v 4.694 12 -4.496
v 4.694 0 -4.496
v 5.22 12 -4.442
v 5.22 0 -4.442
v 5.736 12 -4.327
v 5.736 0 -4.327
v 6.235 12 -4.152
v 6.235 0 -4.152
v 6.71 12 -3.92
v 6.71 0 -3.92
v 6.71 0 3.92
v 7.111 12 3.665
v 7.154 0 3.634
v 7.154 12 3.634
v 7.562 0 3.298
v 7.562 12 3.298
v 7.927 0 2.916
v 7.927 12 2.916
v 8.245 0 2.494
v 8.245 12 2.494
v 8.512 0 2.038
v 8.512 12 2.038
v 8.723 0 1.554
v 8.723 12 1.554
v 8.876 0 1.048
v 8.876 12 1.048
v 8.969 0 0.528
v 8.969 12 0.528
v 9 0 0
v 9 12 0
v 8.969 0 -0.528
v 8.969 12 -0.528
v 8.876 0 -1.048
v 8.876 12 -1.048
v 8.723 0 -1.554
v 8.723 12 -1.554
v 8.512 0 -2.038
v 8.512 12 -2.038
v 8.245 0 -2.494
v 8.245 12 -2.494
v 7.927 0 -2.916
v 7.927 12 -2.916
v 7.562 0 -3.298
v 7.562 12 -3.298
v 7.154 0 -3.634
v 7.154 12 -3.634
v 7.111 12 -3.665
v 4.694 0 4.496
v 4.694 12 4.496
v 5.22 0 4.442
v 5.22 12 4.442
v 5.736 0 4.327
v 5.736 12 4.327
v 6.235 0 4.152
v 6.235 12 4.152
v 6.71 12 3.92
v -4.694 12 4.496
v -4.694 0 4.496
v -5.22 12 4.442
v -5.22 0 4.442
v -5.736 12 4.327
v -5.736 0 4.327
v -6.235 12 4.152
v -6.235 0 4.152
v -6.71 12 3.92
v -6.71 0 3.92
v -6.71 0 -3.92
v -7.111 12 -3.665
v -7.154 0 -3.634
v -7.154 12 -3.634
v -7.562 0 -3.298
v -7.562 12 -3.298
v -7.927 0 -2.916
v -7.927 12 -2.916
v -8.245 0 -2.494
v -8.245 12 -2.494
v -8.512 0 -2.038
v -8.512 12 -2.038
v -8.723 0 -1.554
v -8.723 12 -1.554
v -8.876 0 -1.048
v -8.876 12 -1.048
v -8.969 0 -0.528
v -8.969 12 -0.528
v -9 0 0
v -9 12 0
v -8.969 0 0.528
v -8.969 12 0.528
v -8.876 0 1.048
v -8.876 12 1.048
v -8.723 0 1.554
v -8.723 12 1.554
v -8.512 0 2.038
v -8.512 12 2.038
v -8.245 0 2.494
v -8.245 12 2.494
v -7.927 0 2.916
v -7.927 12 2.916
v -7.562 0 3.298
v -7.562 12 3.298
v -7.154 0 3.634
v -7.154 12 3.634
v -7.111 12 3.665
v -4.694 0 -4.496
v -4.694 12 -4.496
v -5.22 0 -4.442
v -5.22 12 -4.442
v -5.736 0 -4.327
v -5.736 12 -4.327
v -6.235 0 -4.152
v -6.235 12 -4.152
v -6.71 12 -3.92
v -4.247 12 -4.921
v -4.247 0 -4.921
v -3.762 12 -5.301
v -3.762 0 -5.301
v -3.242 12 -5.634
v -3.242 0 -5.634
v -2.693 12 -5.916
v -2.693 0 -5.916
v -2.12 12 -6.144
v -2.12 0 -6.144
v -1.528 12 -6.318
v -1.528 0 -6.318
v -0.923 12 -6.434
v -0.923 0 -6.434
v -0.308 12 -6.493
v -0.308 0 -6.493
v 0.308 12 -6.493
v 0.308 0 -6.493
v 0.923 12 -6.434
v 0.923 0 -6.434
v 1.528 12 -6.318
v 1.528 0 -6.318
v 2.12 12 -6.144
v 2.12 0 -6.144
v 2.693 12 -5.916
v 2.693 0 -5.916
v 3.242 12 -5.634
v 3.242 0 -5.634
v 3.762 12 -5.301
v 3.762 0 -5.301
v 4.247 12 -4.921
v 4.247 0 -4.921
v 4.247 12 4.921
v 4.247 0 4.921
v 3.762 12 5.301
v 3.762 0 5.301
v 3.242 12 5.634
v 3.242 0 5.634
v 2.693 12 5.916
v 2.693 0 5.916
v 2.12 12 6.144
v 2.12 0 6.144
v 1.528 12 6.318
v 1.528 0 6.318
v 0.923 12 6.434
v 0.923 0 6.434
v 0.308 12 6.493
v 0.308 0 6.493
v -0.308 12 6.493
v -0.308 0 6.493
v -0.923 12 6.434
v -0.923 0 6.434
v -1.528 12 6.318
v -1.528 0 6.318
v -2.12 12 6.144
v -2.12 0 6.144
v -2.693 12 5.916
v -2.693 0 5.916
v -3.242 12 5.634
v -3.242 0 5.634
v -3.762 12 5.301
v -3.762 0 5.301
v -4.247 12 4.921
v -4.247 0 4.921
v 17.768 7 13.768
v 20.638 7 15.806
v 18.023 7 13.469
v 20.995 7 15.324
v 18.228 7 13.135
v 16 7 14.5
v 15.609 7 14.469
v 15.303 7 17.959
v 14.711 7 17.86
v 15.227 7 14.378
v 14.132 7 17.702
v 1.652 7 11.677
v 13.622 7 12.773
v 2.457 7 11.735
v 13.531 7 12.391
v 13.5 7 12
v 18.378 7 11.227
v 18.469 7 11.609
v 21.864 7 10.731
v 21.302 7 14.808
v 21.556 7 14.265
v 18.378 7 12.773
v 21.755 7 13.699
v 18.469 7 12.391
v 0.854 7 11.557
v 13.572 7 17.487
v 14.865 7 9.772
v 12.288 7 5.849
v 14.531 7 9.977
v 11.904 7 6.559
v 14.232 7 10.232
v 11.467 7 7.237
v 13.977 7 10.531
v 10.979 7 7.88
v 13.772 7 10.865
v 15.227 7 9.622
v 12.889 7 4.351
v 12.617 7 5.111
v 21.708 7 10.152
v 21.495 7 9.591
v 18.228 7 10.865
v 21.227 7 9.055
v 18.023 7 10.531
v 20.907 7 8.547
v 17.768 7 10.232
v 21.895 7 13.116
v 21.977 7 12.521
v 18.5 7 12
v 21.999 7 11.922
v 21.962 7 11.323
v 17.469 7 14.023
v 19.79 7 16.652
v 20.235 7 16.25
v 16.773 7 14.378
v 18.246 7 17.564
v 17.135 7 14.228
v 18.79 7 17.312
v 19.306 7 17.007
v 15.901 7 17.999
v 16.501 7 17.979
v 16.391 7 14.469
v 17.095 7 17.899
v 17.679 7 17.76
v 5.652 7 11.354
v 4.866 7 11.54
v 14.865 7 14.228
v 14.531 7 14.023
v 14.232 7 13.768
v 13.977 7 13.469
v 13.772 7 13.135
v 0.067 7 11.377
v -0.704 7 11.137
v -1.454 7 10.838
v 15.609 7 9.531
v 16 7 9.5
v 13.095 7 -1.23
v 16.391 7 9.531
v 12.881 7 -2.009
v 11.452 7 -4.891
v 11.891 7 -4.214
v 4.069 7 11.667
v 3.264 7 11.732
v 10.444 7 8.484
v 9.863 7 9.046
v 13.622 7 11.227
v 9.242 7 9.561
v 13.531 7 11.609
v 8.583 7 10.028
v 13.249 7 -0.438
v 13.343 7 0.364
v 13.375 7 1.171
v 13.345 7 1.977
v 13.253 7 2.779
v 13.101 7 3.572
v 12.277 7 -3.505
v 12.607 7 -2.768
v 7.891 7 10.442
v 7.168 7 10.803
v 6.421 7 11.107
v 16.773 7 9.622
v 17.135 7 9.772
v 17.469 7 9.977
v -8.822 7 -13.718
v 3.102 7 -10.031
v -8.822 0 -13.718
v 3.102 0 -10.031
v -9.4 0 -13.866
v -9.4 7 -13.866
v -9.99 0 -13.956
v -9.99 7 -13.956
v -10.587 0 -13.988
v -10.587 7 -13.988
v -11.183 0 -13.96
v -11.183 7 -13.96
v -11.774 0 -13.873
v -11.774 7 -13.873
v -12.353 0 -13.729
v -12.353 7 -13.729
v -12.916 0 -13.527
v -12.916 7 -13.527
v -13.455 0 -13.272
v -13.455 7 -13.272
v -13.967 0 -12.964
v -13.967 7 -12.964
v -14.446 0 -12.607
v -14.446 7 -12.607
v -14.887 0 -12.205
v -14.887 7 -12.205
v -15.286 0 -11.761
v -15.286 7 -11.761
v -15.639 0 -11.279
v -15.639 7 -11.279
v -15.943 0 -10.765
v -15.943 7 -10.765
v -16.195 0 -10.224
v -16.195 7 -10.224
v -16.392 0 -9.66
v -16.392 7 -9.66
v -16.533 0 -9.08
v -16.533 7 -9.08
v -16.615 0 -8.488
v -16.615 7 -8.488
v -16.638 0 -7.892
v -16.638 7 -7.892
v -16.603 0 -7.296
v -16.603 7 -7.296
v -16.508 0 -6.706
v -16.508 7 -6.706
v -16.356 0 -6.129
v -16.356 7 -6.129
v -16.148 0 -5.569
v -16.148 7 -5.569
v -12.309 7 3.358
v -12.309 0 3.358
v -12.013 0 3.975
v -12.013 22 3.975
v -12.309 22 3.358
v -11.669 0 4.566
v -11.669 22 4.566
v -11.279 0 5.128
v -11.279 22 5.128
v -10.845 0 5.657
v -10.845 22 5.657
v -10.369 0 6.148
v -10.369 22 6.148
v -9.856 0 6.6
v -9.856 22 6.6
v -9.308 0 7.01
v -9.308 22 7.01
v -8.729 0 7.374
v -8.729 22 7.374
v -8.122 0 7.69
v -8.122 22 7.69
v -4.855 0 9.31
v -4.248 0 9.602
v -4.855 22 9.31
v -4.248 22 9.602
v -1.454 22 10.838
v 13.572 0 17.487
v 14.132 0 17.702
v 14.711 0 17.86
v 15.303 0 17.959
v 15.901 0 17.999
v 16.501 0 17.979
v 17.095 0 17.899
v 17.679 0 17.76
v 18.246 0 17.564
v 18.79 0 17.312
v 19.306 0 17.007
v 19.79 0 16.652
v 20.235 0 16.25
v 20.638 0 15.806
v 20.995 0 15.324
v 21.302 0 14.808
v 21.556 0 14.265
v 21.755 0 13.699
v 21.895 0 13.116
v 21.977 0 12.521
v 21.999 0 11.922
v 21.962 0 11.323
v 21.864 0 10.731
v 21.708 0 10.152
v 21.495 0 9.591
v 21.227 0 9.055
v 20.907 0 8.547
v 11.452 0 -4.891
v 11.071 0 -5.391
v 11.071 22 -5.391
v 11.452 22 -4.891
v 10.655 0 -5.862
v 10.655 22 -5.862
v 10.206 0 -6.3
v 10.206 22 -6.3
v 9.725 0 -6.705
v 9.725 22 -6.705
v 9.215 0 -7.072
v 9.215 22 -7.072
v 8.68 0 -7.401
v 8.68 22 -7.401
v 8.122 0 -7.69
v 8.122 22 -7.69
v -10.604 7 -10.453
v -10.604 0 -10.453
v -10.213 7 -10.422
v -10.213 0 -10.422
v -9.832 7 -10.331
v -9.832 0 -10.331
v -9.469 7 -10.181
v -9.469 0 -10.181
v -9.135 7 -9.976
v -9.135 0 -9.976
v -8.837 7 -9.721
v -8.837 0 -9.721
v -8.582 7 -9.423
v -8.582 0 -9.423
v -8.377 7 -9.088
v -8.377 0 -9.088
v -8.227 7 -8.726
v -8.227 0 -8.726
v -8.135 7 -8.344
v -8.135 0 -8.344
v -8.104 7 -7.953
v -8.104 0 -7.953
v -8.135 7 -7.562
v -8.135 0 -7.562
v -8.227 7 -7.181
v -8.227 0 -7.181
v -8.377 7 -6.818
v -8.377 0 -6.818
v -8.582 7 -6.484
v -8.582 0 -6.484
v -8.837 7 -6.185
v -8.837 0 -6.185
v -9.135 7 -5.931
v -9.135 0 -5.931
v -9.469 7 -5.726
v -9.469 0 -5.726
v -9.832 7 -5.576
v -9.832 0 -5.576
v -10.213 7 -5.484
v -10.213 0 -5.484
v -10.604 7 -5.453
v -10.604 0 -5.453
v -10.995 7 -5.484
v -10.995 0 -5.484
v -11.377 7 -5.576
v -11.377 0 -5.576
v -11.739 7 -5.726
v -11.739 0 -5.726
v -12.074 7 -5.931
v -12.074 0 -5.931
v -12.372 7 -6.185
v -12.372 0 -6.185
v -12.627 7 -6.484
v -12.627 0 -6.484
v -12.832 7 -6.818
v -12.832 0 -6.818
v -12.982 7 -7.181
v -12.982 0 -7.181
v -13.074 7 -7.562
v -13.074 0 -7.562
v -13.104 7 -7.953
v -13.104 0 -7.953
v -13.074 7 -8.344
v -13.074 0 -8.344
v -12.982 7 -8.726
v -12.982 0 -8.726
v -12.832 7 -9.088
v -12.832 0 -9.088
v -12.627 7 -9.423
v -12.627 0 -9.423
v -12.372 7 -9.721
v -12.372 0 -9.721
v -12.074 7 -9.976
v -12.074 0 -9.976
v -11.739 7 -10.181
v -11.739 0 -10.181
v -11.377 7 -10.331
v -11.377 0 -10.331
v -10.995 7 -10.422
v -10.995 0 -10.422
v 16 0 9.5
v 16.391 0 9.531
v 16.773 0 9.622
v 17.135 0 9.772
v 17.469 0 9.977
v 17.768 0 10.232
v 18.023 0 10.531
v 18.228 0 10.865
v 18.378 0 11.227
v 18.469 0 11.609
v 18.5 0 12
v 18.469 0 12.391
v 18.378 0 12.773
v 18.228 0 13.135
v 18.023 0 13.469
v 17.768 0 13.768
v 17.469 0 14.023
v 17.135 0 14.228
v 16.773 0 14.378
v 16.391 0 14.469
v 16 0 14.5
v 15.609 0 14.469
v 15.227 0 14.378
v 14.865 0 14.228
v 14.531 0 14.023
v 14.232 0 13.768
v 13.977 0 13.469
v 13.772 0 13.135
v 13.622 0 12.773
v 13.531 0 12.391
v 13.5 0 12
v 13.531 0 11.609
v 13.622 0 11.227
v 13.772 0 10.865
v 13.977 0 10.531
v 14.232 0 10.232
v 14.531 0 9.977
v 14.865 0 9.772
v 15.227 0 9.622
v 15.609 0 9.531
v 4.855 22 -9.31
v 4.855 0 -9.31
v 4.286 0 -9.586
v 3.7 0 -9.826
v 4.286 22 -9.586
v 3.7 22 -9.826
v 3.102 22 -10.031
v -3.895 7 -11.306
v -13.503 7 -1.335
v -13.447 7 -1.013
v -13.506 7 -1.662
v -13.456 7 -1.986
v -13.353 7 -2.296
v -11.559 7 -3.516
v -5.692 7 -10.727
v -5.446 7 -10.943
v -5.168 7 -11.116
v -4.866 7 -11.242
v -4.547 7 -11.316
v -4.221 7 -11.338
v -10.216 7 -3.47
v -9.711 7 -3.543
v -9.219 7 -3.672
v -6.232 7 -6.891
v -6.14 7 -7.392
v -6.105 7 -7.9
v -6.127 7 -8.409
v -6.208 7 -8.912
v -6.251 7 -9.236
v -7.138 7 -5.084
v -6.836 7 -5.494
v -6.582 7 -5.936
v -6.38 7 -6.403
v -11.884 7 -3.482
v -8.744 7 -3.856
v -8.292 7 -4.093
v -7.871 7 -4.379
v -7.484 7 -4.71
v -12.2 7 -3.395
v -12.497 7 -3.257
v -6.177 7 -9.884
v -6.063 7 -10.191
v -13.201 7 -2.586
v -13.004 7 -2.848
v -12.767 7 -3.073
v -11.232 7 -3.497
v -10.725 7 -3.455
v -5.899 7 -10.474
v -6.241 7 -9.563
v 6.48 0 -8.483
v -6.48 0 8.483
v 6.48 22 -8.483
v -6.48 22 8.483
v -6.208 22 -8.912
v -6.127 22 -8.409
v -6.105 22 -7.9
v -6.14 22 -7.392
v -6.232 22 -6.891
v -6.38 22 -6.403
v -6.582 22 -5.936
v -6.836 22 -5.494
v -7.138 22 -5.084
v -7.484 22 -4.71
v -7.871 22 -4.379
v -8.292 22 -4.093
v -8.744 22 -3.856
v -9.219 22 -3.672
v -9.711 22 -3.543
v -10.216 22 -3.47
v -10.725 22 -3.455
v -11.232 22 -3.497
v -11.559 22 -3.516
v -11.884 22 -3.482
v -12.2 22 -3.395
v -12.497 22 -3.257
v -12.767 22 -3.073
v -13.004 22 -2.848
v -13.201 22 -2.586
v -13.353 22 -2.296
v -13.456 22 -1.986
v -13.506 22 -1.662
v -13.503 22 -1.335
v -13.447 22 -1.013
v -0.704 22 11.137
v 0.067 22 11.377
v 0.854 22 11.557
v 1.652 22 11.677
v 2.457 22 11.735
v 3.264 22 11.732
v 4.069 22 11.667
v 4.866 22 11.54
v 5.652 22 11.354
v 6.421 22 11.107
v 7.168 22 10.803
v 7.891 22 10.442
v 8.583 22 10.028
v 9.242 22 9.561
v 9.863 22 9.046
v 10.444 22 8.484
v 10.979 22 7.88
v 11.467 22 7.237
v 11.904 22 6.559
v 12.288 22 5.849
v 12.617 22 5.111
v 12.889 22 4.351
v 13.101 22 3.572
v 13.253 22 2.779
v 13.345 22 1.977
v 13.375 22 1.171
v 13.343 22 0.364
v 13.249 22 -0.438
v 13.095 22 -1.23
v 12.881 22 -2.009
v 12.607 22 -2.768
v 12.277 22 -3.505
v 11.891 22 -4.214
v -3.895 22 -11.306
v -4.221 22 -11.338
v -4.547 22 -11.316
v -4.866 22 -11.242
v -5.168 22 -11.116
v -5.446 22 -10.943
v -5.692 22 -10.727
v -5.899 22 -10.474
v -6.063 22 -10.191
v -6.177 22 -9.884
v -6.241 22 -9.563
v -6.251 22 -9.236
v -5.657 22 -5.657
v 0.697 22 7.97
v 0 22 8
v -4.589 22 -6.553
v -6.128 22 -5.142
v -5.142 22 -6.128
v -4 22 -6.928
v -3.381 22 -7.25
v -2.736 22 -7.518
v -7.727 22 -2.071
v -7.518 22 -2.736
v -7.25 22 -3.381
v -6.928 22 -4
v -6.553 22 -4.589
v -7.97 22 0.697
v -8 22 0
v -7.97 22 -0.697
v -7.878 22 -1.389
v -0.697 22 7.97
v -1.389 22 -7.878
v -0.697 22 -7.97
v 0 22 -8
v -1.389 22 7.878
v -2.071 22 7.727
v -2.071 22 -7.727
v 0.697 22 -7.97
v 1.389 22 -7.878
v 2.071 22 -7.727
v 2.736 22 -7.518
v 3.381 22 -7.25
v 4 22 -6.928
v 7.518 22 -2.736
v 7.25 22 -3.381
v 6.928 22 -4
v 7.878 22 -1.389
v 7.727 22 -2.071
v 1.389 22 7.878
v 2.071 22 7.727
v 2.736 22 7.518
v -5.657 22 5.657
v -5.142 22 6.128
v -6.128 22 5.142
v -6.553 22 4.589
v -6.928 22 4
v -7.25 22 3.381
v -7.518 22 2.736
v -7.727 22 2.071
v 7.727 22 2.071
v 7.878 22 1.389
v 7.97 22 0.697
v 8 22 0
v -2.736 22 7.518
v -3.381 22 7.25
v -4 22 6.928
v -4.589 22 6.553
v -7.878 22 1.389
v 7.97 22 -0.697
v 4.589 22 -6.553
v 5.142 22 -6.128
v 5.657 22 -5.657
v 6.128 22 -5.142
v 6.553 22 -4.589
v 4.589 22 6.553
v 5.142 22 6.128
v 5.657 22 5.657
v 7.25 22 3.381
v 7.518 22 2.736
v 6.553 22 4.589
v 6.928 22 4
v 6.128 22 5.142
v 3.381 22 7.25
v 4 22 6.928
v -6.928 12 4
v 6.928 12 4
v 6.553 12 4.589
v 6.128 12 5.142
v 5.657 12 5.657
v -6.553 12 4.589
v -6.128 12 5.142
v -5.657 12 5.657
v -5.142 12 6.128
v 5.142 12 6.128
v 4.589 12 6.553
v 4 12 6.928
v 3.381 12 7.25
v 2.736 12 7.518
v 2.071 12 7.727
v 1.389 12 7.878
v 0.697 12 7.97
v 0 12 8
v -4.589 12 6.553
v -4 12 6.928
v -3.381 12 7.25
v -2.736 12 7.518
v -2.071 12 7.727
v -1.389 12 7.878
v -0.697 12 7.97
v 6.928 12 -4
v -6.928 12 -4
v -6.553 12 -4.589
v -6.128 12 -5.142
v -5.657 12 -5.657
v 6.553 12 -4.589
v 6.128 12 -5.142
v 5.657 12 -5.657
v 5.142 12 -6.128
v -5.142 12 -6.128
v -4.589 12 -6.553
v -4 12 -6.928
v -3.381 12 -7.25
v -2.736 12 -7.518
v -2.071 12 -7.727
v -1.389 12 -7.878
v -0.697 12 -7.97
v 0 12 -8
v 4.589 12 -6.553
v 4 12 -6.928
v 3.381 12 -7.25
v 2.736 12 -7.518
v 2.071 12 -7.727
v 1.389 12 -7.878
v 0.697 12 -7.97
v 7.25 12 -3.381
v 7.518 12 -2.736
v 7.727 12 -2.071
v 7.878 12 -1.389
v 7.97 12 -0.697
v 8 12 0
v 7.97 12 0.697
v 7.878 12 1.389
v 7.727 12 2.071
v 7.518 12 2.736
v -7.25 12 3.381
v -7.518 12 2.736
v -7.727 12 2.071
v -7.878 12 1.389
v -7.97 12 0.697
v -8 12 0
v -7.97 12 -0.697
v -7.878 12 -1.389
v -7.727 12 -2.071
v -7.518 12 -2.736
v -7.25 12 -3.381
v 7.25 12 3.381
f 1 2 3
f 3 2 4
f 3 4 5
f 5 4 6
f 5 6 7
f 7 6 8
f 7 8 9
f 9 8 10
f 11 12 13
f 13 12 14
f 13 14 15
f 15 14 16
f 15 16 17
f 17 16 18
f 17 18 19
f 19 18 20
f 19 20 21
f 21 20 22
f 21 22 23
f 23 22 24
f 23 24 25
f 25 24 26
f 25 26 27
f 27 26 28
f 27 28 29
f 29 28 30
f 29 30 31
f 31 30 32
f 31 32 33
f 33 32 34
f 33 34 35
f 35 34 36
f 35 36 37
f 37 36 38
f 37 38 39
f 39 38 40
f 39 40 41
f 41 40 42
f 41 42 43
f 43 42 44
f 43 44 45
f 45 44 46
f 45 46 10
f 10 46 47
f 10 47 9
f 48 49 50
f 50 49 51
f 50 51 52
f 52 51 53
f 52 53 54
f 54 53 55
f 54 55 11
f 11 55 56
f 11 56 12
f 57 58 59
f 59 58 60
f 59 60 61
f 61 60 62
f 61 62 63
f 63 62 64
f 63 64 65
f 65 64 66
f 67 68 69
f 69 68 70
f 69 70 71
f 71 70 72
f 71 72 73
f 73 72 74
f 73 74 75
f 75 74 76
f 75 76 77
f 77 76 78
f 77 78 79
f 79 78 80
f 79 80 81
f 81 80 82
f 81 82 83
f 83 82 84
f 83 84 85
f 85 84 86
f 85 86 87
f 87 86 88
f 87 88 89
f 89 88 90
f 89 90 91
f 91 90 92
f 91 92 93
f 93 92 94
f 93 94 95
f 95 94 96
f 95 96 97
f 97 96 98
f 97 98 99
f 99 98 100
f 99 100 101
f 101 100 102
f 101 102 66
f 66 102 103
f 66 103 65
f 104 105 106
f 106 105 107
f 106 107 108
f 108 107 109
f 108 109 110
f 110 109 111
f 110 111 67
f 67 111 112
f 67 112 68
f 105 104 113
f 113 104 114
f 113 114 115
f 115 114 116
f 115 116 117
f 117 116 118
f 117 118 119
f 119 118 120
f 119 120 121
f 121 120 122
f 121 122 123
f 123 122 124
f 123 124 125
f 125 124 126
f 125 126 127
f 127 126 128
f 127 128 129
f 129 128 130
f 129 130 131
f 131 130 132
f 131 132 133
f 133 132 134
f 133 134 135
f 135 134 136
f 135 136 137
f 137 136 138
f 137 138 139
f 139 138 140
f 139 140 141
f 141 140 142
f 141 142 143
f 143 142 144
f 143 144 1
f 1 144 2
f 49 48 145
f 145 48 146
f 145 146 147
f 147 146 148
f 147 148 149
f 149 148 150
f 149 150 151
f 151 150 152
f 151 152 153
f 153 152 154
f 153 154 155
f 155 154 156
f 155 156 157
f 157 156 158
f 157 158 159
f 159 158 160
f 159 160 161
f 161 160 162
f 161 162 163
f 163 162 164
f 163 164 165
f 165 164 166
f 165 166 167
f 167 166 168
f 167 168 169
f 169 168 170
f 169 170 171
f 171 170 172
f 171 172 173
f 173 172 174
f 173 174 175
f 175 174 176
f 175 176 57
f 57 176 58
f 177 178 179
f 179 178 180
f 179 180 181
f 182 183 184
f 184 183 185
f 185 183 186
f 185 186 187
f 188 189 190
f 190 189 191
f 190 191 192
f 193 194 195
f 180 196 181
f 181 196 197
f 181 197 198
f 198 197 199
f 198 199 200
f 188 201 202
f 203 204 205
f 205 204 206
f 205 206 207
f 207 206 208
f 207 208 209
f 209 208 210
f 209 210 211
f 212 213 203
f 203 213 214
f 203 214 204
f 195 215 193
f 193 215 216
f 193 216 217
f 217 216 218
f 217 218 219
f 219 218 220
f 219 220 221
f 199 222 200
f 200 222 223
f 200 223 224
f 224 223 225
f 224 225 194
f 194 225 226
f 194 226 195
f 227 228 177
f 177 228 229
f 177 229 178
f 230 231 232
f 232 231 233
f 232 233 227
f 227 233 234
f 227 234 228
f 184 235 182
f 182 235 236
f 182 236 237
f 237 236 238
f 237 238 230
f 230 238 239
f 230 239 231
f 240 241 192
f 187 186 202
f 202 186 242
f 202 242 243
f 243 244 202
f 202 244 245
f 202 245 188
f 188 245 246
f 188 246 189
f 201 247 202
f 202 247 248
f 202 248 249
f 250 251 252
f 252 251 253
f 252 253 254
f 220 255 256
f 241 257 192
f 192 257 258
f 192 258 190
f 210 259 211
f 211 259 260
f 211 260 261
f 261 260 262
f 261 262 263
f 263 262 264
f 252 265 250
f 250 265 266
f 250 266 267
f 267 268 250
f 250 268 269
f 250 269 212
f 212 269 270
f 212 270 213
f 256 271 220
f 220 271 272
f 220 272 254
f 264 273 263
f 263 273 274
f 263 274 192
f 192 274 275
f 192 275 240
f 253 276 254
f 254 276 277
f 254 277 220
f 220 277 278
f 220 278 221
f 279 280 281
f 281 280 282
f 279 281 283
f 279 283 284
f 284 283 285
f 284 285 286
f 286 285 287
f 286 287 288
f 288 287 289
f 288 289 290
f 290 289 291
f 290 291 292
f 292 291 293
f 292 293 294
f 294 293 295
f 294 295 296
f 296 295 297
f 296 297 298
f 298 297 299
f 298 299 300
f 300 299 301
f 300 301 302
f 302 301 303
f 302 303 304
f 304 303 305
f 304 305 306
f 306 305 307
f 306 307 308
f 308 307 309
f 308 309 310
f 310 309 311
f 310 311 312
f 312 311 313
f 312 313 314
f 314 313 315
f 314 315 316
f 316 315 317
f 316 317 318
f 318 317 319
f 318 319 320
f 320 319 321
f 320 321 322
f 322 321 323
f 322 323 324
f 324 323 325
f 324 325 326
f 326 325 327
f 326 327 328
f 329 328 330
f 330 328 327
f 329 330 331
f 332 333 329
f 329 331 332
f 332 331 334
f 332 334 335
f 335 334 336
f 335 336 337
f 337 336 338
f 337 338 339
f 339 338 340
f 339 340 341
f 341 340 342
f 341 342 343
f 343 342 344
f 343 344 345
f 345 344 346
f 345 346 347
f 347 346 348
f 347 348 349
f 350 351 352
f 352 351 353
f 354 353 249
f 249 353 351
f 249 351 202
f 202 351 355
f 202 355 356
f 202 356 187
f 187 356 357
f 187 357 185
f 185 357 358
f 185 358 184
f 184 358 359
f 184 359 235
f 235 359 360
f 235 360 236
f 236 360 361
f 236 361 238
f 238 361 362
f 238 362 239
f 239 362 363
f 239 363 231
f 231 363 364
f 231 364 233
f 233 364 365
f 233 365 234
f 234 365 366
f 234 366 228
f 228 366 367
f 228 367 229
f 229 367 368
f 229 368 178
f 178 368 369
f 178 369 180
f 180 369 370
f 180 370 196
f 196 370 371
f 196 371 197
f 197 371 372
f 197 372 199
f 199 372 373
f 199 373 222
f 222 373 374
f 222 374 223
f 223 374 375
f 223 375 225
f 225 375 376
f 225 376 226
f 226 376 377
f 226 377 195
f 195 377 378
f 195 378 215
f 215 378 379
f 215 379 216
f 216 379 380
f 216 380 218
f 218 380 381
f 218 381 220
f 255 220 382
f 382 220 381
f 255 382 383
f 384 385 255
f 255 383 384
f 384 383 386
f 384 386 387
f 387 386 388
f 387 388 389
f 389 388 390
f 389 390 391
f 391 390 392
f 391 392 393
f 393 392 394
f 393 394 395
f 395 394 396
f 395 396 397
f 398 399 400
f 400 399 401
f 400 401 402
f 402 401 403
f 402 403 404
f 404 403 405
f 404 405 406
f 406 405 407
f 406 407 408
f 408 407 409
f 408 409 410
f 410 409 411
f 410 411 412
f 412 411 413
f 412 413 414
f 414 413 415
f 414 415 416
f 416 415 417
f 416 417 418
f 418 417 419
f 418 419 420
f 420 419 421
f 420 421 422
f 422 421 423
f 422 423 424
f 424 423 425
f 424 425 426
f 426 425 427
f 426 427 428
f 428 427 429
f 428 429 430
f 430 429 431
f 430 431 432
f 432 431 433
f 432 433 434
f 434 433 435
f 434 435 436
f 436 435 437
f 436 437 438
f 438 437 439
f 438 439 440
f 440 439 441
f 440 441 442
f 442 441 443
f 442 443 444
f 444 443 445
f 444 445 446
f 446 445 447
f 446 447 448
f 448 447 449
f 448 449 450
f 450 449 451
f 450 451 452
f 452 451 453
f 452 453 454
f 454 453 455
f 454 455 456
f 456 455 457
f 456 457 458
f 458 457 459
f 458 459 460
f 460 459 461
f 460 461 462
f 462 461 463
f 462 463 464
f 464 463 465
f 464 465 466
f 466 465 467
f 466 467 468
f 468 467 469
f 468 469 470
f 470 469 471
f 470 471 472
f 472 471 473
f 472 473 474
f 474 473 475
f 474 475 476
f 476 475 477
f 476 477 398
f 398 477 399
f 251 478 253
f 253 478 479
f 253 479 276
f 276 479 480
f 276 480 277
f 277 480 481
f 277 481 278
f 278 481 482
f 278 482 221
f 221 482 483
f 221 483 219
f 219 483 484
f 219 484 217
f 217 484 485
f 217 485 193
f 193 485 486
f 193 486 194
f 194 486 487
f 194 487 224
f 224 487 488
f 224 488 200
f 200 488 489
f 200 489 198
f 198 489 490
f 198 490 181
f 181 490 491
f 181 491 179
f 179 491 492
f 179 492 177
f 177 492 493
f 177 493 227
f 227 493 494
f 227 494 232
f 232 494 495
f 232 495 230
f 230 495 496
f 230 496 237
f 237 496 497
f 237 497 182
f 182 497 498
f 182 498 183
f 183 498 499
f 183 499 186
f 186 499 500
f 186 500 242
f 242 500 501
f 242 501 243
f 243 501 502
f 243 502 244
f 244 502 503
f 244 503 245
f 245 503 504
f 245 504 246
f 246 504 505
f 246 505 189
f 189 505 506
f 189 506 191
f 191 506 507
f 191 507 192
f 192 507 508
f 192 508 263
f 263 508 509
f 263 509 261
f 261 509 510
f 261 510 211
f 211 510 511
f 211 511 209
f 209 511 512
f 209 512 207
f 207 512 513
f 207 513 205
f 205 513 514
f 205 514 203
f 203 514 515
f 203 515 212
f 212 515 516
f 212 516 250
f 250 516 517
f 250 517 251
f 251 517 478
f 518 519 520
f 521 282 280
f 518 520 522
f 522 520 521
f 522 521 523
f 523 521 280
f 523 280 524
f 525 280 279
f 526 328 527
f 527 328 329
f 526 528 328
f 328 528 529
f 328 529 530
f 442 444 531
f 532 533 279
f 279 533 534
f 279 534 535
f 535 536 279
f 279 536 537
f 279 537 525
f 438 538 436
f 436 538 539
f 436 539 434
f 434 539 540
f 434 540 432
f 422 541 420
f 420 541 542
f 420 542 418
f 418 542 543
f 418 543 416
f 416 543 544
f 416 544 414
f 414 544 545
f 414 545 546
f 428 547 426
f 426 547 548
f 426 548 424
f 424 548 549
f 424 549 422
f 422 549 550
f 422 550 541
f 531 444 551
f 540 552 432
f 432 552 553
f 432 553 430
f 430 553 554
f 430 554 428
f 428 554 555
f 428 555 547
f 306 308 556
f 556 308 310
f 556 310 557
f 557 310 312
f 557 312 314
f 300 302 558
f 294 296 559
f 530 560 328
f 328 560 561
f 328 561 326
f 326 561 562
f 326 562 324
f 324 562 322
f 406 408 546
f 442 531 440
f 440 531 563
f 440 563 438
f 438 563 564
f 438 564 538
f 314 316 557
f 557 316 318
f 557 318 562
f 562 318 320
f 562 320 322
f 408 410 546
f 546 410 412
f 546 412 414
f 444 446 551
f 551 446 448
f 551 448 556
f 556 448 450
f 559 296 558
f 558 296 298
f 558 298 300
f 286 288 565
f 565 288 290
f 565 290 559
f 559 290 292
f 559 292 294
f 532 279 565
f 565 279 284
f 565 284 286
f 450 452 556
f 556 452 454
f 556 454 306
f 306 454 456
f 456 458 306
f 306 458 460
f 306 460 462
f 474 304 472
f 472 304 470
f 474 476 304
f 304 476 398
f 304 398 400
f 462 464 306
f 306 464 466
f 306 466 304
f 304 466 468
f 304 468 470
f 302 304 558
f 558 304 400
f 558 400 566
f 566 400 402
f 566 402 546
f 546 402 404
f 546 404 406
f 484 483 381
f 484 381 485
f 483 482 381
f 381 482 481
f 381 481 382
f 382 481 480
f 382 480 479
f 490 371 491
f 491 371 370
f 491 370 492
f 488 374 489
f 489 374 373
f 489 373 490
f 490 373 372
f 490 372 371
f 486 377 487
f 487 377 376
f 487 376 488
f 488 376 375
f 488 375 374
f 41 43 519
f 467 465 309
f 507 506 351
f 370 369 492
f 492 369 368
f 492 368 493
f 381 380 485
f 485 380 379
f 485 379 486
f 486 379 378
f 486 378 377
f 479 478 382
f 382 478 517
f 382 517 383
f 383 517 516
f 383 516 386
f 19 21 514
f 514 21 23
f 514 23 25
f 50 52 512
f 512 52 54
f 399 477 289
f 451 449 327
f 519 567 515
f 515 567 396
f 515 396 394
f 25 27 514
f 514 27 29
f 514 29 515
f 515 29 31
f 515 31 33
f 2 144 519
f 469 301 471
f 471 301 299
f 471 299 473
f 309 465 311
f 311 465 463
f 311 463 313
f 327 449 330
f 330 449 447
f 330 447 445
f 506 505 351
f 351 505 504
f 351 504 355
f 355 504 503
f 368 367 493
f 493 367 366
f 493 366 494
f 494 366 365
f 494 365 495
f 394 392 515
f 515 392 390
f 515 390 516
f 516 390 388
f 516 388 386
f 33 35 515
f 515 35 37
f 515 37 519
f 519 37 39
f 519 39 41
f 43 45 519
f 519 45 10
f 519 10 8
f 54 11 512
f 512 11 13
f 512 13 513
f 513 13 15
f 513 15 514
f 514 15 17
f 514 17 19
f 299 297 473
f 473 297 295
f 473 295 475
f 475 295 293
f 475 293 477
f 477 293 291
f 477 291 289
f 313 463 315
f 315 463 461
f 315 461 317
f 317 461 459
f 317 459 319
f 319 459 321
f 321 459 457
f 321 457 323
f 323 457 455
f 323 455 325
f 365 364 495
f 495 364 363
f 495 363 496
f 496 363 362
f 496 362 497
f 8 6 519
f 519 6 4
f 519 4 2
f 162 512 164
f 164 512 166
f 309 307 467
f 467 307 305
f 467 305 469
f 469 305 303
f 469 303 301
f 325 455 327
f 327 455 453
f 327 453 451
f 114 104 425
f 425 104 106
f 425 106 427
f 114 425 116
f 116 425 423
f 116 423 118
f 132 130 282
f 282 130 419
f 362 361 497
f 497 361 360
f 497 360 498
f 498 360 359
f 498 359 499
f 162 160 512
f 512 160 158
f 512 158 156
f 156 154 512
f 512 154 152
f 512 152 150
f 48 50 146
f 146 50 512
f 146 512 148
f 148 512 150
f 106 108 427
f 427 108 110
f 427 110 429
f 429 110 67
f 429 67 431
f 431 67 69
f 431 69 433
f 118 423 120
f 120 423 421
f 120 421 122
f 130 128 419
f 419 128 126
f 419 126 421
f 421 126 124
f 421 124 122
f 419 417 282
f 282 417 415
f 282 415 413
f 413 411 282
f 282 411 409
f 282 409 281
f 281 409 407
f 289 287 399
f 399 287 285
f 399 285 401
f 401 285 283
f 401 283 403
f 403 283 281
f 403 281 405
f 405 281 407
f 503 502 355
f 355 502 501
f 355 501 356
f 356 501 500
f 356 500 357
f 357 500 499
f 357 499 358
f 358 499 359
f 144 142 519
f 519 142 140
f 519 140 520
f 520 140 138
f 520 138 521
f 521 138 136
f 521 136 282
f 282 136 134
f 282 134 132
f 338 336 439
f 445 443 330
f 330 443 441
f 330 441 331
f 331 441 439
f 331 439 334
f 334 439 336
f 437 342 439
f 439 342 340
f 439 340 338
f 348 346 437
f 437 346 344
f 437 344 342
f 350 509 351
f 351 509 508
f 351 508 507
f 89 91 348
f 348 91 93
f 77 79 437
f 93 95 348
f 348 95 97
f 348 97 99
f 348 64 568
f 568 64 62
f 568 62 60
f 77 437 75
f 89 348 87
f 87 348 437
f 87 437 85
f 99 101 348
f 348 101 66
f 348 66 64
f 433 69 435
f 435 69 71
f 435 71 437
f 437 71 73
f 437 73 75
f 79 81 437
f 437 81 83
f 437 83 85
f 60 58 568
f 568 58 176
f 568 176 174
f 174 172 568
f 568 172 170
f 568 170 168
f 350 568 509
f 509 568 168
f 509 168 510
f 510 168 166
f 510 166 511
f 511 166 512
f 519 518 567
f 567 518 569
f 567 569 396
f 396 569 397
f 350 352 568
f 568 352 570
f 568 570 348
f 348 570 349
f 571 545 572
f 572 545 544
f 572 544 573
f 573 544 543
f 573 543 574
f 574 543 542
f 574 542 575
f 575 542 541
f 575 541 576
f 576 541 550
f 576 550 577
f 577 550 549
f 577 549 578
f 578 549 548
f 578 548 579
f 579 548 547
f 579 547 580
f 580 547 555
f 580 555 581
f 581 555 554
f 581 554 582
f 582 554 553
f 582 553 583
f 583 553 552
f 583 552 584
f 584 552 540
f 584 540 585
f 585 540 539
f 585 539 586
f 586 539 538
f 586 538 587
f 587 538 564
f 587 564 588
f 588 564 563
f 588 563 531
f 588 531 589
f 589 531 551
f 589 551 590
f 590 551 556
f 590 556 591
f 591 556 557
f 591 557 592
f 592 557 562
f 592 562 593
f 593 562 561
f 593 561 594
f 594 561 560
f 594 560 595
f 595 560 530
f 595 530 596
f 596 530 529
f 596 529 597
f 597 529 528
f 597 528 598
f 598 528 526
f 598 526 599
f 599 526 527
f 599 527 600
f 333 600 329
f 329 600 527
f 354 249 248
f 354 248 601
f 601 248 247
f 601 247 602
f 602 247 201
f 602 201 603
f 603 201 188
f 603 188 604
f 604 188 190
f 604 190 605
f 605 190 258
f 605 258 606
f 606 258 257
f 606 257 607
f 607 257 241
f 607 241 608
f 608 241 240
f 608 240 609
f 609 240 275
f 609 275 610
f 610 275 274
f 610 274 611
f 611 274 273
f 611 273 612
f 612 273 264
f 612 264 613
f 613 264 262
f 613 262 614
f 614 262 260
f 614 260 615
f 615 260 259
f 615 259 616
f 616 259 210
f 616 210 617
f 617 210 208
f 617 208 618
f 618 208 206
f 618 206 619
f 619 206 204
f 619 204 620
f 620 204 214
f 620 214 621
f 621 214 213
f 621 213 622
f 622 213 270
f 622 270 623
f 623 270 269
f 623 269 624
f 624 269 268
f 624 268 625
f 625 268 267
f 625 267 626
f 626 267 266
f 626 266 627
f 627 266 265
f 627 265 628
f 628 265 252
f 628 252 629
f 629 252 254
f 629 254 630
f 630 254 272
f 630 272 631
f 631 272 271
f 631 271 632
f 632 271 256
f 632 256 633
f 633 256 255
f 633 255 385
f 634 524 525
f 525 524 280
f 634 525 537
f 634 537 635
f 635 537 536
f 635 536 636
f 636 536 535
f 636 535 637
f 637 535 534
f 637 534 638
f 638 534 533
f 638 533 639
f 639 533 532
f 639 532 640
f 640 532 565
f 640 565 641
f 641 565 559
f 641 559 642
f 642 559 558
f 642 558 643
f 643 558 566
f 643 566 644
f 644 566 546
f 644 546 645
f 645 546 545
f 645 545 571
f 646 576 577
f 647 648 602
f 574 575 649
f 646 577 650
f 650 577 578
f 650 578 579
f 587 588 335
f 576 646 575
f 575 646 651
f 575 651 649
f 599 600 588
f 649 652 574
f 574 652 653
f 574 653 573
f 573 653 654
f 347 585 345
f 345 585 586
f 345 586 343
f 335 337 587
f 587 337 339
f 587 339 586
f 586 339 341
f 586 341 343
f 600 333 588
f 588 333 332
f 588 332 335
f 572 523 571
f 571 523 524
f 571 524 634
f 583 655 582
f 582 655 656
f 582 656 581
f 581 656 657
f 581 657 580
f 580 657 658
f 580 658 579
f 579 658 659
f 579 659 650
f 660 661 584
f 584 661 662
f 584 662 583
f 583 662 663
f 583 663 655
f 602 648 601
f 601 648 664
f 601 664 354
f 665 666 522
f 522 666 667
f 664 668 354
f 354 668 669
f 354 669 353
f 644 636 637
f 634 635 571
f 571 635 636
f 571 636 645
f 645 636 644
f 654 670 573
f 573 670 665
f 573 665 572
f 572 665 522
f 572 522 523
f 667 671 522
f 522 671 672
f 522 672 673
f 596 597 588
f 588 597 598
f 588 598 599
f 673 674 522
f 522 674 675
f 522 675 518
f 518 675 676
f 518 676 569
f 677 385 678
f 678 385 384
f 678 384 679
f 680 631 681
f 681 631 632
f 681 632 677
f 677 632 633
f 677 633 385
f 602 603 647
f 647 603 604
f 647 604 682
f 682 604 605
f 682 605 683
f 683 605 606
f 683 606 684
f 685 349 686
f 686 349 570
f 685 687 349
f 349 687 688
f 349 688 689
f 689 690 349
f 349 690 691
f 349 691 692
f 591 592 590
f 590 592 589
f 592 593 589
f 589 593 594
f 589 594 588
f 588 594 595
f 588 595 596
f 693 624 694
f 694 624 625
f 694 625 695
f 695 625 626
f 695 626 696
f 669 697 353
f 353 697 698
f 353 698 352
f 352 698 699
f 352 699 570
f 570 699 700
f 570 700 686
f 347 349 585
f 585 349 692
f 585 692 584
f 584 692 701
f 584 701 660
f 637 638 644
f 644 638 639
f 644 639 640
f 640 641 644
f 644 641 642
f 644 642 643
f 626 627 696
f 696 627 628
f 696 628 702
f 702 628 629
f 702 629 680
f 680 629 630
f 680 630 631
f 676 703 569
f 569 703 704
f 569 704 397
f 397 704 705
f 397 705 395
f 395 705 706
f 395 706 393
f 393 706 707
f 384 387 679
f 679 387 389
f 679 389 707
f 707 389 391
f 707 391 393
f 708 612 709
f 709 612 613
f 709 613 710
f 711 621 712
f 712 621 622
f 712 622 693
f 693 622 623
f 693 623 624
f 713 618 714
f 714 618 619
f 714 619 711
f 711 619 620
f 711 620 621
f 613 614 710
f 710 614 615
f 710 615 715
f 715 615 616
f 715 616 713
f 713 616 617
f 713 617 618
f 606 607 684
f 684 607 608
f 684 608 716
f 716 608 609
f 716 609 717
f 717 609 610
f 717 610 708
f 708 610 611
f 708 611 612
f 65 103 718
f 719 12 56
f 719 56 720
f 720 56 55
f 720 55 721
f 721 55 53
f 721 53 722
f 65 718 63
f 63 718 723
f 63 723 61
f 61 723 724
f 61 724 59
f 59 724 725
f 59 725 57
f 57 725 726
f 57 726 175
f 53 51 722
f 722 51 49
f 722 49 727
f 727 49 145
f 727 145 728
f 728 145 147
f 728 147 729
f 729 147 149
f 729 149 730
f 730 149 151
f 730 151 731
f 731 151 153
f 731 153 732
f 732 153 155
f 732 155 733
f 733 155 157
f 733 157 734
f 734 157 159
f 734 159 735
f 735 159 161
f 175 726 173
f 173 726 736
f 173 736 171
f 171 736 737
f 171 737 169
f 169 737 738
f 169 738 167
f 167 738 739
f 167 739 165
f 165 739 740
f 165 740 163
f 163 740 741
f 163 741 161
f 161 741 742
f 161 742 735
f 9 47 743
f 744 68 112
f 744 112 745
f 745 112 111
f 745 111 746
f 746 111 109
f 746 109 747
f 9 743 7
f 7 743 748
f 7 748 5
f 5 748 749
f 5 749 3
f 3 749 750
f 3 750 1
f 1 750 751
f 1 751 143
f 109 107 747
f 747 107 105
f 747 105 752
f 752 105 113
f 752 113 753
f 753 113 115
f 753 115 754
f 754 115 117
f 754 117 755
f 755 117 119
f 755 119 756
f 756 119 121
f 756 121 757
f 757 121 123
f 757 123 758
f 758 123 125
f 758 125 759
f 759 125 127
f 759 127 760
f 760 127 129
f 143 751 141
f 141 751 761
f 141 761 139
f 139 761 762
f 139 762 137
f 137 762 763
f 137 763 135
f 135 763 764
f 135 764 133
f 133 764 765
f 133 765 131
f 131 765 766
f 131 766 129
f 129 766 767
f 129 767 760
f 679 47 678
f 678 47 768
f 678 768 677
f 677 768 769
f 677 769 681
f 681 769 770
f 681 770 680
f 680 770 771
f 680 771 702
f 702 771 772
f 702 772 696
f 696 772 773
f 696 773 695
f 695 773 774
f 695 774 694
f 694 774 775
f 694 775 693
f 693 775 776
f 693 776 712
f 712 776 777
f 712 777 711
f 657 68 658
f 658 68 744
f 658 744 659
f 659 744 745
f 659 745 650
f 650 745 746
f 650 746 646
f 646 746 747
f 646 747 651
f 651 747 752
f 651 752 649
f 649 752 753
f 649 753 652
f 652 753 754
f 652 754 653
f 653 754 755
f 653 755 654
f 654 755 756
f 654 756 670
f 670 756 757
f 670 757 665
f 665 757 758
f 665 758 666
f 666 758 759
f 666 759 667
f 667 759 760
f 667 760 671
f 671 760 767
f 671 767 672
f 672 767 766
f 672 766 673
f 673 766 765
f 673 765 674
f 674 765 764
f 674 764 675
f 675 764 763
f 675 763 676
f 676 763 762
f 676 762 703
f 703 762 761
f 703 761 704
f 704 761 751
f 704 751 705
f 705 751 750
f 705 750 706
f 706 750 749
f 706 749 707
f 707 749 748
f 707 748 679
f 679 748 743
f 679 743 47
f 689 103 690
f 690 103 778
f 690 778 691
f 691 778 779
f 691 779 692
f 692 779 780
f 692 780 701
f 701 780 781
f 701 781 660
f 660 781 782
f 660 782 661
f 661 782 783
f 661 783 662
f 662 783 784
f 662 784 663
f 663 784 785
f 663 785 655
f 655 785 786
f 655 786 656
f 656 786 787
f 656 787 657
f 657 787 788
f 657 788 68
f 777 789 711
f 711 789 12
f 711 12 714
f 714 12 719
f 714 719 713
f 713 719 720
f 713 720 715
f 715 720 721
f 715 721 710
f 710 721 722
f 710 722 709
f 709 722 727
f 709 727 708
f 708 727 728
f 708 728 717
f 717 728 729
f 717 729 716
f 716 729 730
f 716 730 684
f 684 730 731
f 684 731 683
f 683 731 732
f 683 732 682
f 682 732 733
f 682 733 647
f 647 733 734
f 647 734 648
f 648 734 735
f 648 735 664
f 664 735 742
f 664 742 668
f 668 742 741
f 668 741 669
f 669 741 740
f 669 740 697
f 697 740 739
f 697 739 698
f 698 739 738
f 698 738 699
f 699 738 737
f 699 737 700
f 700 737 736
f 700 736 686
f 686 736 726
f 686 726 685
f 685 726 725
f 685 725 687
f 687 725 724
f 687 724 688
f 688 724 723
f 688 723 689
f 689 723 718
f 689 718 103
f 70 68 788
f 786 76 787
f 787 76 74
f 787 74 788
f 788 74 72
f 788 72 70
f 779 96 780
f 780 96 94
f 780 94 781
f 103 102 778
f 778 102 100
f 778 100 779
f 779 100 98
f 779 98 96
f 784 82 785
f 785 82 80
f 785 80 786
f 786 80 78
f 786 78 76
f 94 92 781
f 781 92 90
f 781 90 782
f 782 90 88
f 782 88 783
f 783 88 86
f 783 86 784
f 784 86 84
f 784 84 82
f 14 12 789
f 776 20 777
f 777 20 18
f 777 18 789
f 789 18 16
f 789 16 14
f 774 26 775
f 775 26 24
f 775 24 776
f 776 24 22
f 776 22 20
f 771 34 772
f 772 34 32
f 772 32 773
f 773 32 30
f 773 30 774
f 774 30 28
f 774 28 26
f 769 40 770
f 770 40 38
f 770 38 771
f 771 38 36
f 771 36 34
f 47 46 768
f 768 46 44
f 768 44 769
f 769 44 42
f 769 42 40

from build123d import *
from build123d.topology import SkipClean

# Parameters (mm, degrees)
SKETCH2_R           = 2.5
BOSS_EXTRUDE1_DEPTH = 7
FILLET1_R           = 90
BOSS_EXTRUDE3_DEPTH = 15
SKETCH4_R           = 8
CUT_EXTRUDE1_DEPTH  = 10
BOSS_EXTRUDE4_START = 10
BOSS_EXTRUDE4_DEPTH = 10


with BuildPart() as part:
    # Sketch2 → Boss-Extrude1 (new body)
    with BuildSketch(Plane(origin=(0, 0, 0), x_dir=(1, 0, 0), z_dir=(0, 1, 0))):
        with BuildLine():
            Line((-4.24846021, -9.602113613), (13.572308451, -17.486922065))
            ThreePointArc((13.572308451, -17.486922065), (20.638500285, -15.805826469), (20.907079545, -8.547382103))
            Line((20.907079545, -8.547382103), (11.451696022, 4.891208687))
            ThreePointArc((11.451696022, 4.891208687), (9.270724445, 7.034926316), (6.472222222, 8.268031175))
            ThreePointArc((6.472222222, 8.268031175), (4.86754966, 9.30359932), (3.101845071, 10.031378627))
            Line((3.101845071, 10.031378627), (-8.821699821, 13.718308443))
            ThreePointArc((-8.821699821, 13.718308443), (-15.091857172, 11.987583677), (-16.147811194, 5.569231667))
            Line((-16.147811194, 5.569231667), (-12.308520784, -3.358124948))
            ThreePointArc((-12.308520784, -3.358124948), (-9.971976629, -6.504419403), (-6.472222222, -8.268031175))
            ThreePointArc((-6.472222222, -8.268031175), (-5.401685102, -9.003987898), (-4.24846021, -9.602113613))
        make_face()
        with Locations(Location((16, -12, 0), (0, 0, 270))):
            Circle(SKETCH2_R, mode=Mode.SUBTRACT)
        with Locations(Location((-10.604337088, 7.953252816, 0), (0, 0, 270))):
            Circle(SKETCH2_R, mode=Mode.SUBTRACT)
        with BuildLine():
            ThreePointArc((-4.694444444, -4.495797077), (0, -6.5), (4.694444444, -4.495797077))
            ThreePointArc((4.694444444, -4.495797077), (9, 0), (4.694444444, 4.495797077))
            ThreePointArc((4.694444444, 4.495797077), (0, 6.5), (-4.694444444, 4.495797077))
            ThreePointArc((-4.694444444, 4.495797077), (-9, 0), (-4.694444444, -4.495797077))
        make_face(mode=Mode.SUBTRACT)
    extrude(amount=BOSS_EXTRUDE1_DEPTH)

    # Fillet1
    fillet1_edges = [part.edges().sort_by_distance(p)[0] for p in [
        (6.472222222, 3.5, -8.268031175),
        (-6.472222222, 3.5, 8.268031175),
    ]]
    fillet(fillet1_edges, radius=FILLET1_R)

    # Sketch3 → Boss-Extrude3 (add)
    with BuildSketch(Plane(origin=(0, 7, 0), x_dir=(1, 0, 0), z_dir=(0, 1, 0))):
        with BuildLine():
            Line((-13.446880098, 1.012795393), (-12.308520784, -3.358124948))
            ThreePointArc((-12.308520784, -3.358124948), (-10.611843956, -5.907229762), (-8.121968415, -7.689690813))
            ThreePointArc((-8.121968415, -7.689690813), (-6.480430757, -8.483296944), (-4.855306799, -9.309994408))
            ThreePointArc((-4.855306799, -9.309994408), (-4.554226262, -9.460920841), (-4.24846021, -9.602113613))
            Line((-4.24846021, -9.602113613), (-1.454246479, -10.838414946))
            ThreePointArc((-1.454246479, -10.838414946), (10.979115699, -7.880432641), (11.451696022, 4.891208687))
            ThreePointArc((11.451696022, 4.891208687), (9.968863726, 6.507036925), (8.121968415, 7.689690813))
            ThreePointArc((8.121968415, 7.689690813), (6.480430757, 8.483296944), (4.855306799, 9.309994408))
            ThreePointArc((4.855306799, 9.309994408), (3.994892398, 9.710346787), (3.101845071, 10.031378627))
            Line((3.101845071, 10.031378627), (-3.895223267, 11.305534387))
            ThreePointArc((-3.895223267, 11.305534387), (-5.691953988, 10.727471116), (-6.207623157, 8.911848981))
            ThreePointArc((-6.207623157, 8.911848981), (-7.30582589, 4.892236012), (-11.232333003, 3.497288147))
            ThreePointArc((-11.232333003, 3.497288147), (-13.004436636, 2.847636589), (-13.446880098, 1.012795393))
        make_face()
        with BuildLine():
            ThreePointArc((4.694444444, -4.495797077), (9, 0), (4.694444444, 4.495797077))
            ThreePointArc((4.694444444, 4.495797077), (0, 6.5), (-4.694444444, 4.495797077))
            ThreePointArc((-4.694444444, 4.495797077), (-9, 0), (-4.694444444, -4.495797077))
            ThreePointArc((-4.694444444, -4.495797077), (0, -6.5), (4.694444444, -4.495797077))
        make_face(mode=Mode.SUBTRACT)
    extrude(amount=BOSS_EXTRUDE3_DEPTH)

    # Sketch4 → Cut-Extrude1 (cut)
    with BuildSketch(Plane(origin=(0, 22, 0), x_dir=(1, 0, 0), z_dir=(0, 1, 0))):
        Circle(SKETCH4_R)
    extrude(amount=-CUT_EXTRUDE1_DEPTH, mode=Mode.SUBTRACT)

    # Sketch5 → Boss-Extrude4 (add)
    with SkipClean():  # the faces are left unmerged after this step: merging them gives an invalid solid
        with BuildSketch(Plane(origin=(0, 12, 0), x_dir=(1, 0, 0), z_dir=(0, 1, 0)).offset(BOSS_EXTRUDE4_START)):
            with BuildLine():
                ThreePointArc((-7.111111111, 3.664982778), (-8, 0), (-7.111111111, -3.664982778))
                ThreePointArc((-7.111111111, -3.664982778), (-9, 0), (-7.111111111, 3.664982778))
            make_face()
            with BuildLine():
                ThreePointArc((7.111111111, -3.664982778), (9, 0), (7.111111111, 3.664982778))
                ThreePointArc((7.111111111, 3.664982778), (8, 0), (7.111111111, -3.664982778))
            make_face()
        extrude(amount=-BOSS_EXTRUDE4_DEPTH)


solid = part.part
